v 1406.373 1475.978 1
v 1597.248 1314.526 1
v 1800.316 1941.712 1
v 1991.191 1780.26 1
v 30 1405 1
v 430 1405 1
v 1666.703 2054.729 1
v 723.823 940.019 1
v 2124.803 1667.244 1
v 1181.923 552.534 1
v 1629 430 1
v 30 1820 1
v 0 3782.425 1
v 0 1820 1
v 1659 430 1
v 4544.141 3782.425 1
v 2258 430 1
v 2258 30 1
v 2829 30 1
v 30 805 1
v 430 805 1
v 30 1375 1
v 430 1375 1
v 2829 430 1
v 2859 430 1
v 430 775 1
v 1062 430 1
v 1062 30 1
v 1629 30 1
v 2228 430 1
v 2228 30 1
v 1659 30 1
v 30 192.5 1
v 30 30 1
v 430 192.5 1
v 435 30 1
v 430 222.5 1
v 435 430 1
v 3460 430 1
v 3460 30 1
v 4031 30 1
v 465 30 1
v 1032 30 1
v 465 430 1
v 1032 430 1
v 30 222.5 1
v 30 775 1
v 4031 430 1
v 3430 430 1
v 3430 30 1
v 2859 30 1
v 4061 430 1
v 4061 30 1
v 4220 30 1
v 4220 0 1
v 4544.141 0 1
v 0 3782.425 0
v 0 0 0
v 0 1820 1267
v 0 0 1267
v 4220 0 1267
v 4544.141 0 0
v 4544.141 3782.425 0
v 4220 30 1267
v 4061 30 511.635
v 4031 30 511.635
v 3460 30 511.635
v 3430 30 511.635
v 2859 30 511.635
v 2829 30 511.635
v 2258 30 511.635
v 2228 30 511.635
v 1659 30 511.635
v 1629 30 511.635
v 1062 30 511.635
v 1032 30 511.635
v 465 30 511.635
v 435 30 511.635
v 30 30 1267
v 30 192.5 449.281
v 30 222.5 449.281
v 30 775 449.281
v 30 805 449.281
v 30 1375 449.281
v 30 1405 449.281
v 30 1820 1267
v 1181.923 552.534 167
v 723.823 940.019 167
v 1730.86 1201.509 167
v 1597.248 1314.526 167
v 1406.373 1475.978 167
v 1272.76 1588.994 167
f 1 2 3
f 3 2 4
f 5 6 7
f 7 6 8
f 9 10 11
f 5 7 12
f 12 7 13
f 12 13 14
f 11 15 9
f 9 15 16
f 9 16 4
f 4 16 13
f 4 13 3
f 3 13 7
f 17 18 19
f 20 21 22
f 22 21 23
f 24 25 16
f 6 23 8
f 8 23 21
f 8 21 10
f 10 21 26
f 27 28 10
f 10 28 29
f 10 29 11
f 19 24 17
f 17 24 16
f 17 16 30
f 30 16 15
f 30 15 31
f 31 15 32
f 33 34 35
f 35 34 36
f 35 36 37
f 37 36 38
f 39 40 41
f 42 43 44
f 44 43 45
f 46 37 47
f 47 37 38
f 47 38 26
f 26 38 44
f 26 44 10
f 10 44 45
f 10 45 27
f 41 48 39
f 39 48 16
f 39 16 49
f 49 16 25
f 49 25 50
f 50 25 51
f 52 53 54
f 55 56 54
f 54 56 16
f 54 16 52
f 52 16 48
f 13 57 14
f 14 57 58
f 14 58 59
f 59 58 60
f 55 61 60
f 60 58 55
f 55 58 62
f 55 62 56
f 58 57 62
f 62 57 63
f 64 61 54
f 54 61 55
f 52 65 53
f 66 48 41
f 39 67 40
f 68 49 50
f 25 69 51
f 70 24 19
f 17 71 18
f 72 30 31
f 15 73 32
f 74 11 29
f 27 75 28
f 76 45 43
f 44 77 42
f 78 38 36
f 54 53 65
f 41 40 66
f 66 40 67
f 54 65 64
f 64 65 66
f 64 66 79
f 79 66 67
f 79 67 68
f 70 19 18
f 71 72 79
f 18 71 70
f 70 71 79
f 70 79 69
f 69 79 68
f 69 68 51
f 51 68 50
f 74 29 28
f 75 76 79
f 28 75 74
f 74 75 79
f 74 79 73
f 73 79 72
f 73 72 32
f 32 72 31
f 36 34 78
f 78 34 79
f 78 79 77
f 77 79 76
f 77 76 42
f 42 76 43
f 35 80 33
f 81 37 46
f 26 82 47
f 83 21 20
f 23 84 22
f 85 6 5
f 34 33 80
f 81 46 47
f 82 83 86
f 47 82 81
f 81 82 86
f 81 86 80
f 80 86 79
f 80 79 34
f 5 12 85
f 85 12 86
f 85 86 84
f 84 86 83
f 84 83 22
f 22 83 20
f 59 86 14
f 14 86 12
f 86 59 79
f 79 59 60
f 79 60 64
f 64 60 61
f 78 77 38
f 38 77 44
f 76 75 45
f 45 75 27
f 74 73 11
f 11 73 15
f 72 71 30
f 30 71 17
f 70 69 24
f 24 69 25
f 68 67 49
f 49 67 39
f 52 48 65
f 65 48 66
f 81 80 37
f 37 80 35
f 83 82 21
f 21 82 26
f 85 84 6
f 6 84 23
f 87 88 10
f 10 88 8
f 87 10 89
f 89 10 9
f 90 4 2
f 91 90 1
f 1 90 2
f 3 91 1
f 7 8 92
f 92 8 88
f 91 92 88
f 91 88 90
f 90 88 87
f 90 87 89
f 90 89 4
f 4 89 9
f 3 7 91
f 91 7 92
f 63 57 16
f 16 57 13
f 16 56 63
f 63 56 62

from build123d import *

# Parameters (mm, degrees)
BOSS_EXTRUDE1_DEPTH = 1266
BOSS_EXTRUDE2_DEPTH = 2500
BOSS_EXTRUDE3_DEPTH = 902.5
CUT_EXTRUDE1_DEPTH  = 3630
CUT_EXTRUDE3_DEPTH  = 1220
SKETCH8_W           = 485
SKETCH8_H           = 285
CUT_EXTRUDE5_DEPTH  = 390
SKETCH9_W           = 270
SKETCH9_H           = 285
CUT_EXTRUDE6_DEPTH  = 390
SKETCH10_W          = 470
SKETCH10_H          = 285
CUT_EXTRUDE7_DEPTH  = 390
SKETCH11_W          = 485
SKETCH11_H          = 217.5
CUT_EXTRUDE8_DEPTH  = 390
SKETCH12_W          = 270
SKETCH12_H          = 217.5
CUT_EXTRUDE9_DEPTH  = 390
SKETCH13_W          = 470
SKETCH13_H          = 217.5
CUT_EXTRUDE10_DEPTH = 390
SKETCH14_W          = 585
SKETCH14_H          = 155.831493033
CUT_EXTRUDE11_DEPTH = 499
SKETCH15_W          = 6996.313715464
SKETCH15_H          = 5079.044050363
BOSS_EXTRUDE5_DEPTH = 1
BOSS_EXTRUDE8_DEPTH = 166
CUT_EXTRUDE12_DEPTH = 180
CUT_EXTRUDE13_DEPTH = 180
SKETCH25_W          = 2533.673727512
SKETCH25_H          = 5079.044050363
CUT_EXTRUDE14_DEPTH = 20000
SKETCH26_W          = 6996.313715464
SKETCH26_H          = 1296.619269855
CUT_EXTRUDE15_DEPTH = 2000
SKETCH27_W          = 2452.172937996
SKETCH27_H          = 3782.424780508
CUT_EXTRUDE16_DEPTH = 2000


with BuildPart() as part:
    # walls → Boss-Extrude1 (new body)
    with BuildSketch(Plane.XY):
        Polygon((0, 0), (4220, 0), (4220, 30), (4061, 30), (4061, 430), (4031, 430), (4031, 30), (3460, 30), (3460, 430), (3430, 430), (3430, 30), (2859, 30), (2859, 430), (2829, 430), (2829, 30), (2258, 30), (2258, 430), (2228, 430), (2228, 30), (1659, 30), (1659, 430), (1629, 430), (1629, 30), (1062, 30), (1062, 430), (1032, 430), (1032, 30), (465, 30), (465, 430), (435, 430), (435, 30), (30, 30), (30, 192.5), (430, 192.5), (430, 222.5), (30, 222.5), (30, 775), (430, 775), (430, 805), (30, 805), (30, 1375), (430, 1375), (430, 1405), (30, 1405), (30, 1820), (0, 1820), (0, 30), align=None)
    extrude(amount=BOSS_EXTRUDE1_DEPTH)

    # large_wall_cut → Cut-Extrude1 (cut)
    with BuildSketch(Plane(origin=(4061, 0, 0), x_dir=(0, 0, -1), z_dir=(1, 0, 0))):
        Polygon((-1266, 30), (-1266, 430), (0, 430), (-510.635057002, 30), align=None)
    extrude(amount=-CUT_EXTRUDE1_DEPTH, mode=Mode.SUBTRACT)

    # small_wall_cut → Cut-Extrude3 (cut)
    with BuildSketch(Plane(origin=(0, 1405, 0), x_dir=(1, 0, 0), z_dir=(0, 1, 0))):
        Polygon((30, -1266), (430, -1266), (430, 0), (30, -448.280892995), align=None)
    extrude(amount=-CUT_EXTRUDE3_DEPTH, mode=Mode.SUBTRACT)



with BuildPart() as body_2:
    # column → Boss-Extrude2 (new body)
    with BuildSketch(Plane(origin=(914.708707022, 1935.068858389, 0), x_dir=(1, 0, 0), z_dir=(0, 0, 1))):
        Polygon((5085, 2493.425486023), (5585, 2493.425486023), (5585, 1993.425486023), (5285, 1993.425486023), (5285, 2193.425486023), (5085, 2193.425486023), align=None)
    extrude(amount=BOSS_EXTRUDE2_DEPTH)


with BuildPart() as body_3:
    # stairs → Boss-Extrude3 (new body)
    with BuildSketch(Plane(origin=(5389.144664379, -90.533957801, 0), x_dir=(1, 0, 0), z_dir=(0, 0, 1))):
        Polygon((0, 2425), (1250, 2425), (1250, 2721), (814.684080579, 2721), (814.684080579, 2766), (1295, 2766), (1295, 2721), (1295, 2425), (1295, 2380), (0, 2380), align=None)
    extrude(amount=BOSS_EXTRUDE3_DEPTH)

    # Sketch8 → Cut-Extrude5 (cut)
    with BuildSketch(Plane(origin=(5389.144664379, 2289.466042199, 0), x_dir=(-1, 0, 0), z_dir=(0, -1, 0))):
        with Locations((-242.5, -142.5)):
            Rectangle(SKETCH8_W, SKETCH8_H)
    extrude(amount=-CUT_EXTRUDE5_DEPTH, mode=Mode.SUBTRACT)

    # Sketch9 → Cut-Extrude6 (cut)
    with BuildSketch(Plane(origin=(5389.144664379, 2289.466042199, 0), x_dir=(1, 0, 0), z_dir=(0, -1, 0))):
        with Locations((655, 142.5)):
            Rectangle(SKETCH9_W, SKETCH9_H)
    extrude(amount=-CUT_EXTRUDE6_DEPTH, mode=Mode.SUBTRACT)

    # Sketch10 → Cut-Extrude7 (cut)
    with BuildSketch(Plane(origin=(5389.144664379, 2289.466042199, 0), x_dir=(1, 0, 0), z_dir=(0, -1, 0))):
        with Locations((1060, 142.5)):
            Rectangle(SKETCH10_W, SKETCH10_H)
    extrude(amount=-CUT_EXTRUDE7_DEPTH, mode=Mode.SUBTRACT)

    # Sketch11 → Cut-Extrude8 (cut)
    with BuildSketch(Plane(origin=(5389.144664379, 2289.466042199, 0), x_dir=(-1, 0, 0), z_dir=(0, -1, 0))):
        with Locations((-242.5, -743.75)):
            Rectangle(SKETCH11_W, SKETCH11_H)
    extrude(amount=-CUT_EXTRUDE8_DEPTH, mode=Mode.SUBTRACT)

    # Sketch12 → Cut-Extrude9 (cut)
    with BuildSketch(Plane(origin=(5389.144664379, 2289.466042199, 0), x_dir=(1, 0, 0), z_dir=(0, -1, 0))):
        with Locations((655, 743.75)):
            Rectangle(SKETCH12_W, SKETCH12_H)
    extrude(amount=-CUT_EXTRUDE9_DEPTH, mode=Mode.SUBTRACT)

    # Sketch13 → Cut-Extrude10 (cut)
    with BuildSketch(Plane(origin=(5389.144664379, 2289.466042199, 0), x_dir=(1, 0, 0), z_dir=(0, -1, 0))):
        with Locations((1060, 743.75)):
            Rectangle(SKETCH13_W, SKETCH13_H)
    extrude(amount=-CUT_EXTRUDE10_DEPTH, mode=Mode.SUBTRACT)

    # Sketch14 → Cut-Extrude11 (cut)
    with BuildSketch(Plane(origin=(6684.144664379, -90.533957801, 0), x_dir=(0, 0, -1), z_dir=(1, 0, 0))):
        with Locations((-292.5, 2688.084253484)):
            Rectangle(SKETCH14_W, SKETCH14_H)
    extrude(amount=-CUT_EXTRUDE11_DEPTH, mode=Mode.SUBTRACT)


with BuildPart() as part_1:
    add(part.part)

    add(body_2.part)  # Boss-Extrude5 merges body 2

    add(body_3.part)  # Boss-Extrude5 merges body 3
    # Sketch15 → Boss-Extrude5 (add)
    with BuildSketch(Plane(origin=(0, 0, 0), x_dir=(-1, 0, 0), z_dir=(0, 0, -1))):
        with Locations((-3498.156857732, 2539.522025182)):
            Rectangle(SKETCH15_W, SKETCH15_H)
    extrude(amount=BOSS_EXTRUDE5_DEPTH)

    # Sketch18 → Boss-Extrude8 (add)
    with BuildSketch(Plane(origin=(-186.04659113, 70.659630185, 0), x_dir=(0.968147640378129, 0.2503800040543594, 0), z_dir=(0, 0, 1))):
        Polygon((1445.048616126, 124.013590319), (2138.990862123, 614.874221478), (2636.996473956, 967.138909721), (2535.936932247, 1110.009372132), (2037.931320414, 757.744683889), (1893.560546544, 961.845344476), (2391.566158377, 1314.110032719), (2290.506616668, 1456.98049513), (1792.501004835, 1104.715806887), (1098.558758838, 613.855175729), align=None)
    extrude(amount=BOSS_EXTRUDE8_DEPTH)

    # Sketch20 → Cut-Extrude12 (cut)
    with BuildSketch(Plane(origin=(424.631523371, -71.78750701, 0), x_dir=(0.645808072001047, 0.7634997931488198, 0), z_dir=(-0.7634997931488198, 0.645808072001047, 0))):
        Polygon((2425.734764591, 0), (1815.734764591, -166), (2425.734764591, -166), align=None)
    extrude(amount=-CUT_EXTRUDE12_DEPTH, mode=Mode.SUBTRACT)

    # Sketch21 → Cut-Extrude13 (cut)
    with BuildSketch(Plane(origin=(233.756575084, 89.664510991, 0), x_dir=(-0.6458080720010444, -0.7634997931488219, 0), z_dir=(0.7634997931488219, -0.6458080720010444, 0))):
        Polygon((-2425.734764591, 0), (-1815.734764591, -166), (-2425.734764591, -166), align=None)
    extrude(amount=-CUT_EXTRUDE13_DEPTH, mode=Mode.SUBTRACT)

    # Sketch25 → Cut-Extrude14 (cut)
    with BuildSketch(Plane.XY):
        with Locations((5729.476851708, 2539.522025182)):
            Rectangle(SKETCH25_W, SKETCH25_H)
    extrude(amount=CUT_EXTRUDE14_DEPTH, mode=Mode.SUBTRACT)

    # Sketch26 → Cut-Extrude15 (cut)
    with BuildSketch(Plane.XY):
        with Locations((3498.156857732, 4430.734415436)):
            Rectangle(SKETCH26_W, SKETCH26_H)
    extrude(amount=-CUT_EXTRUDE15_DEPTH, mode=Mode.SUBTRACT)

    # Sketch27 → Cut-Extrude16 (cut)
    with BuildSketch(Plane.XY):
        with Locations((5770.227246466, 1891.212390254)):
            Rectangle(SKETCH27_W, SKETCH27_H)
    extrude(amount=-CUT_EXTRUDE16_DEPTH, mode=Mode.SUBTRACT)


solid = part_1.part
